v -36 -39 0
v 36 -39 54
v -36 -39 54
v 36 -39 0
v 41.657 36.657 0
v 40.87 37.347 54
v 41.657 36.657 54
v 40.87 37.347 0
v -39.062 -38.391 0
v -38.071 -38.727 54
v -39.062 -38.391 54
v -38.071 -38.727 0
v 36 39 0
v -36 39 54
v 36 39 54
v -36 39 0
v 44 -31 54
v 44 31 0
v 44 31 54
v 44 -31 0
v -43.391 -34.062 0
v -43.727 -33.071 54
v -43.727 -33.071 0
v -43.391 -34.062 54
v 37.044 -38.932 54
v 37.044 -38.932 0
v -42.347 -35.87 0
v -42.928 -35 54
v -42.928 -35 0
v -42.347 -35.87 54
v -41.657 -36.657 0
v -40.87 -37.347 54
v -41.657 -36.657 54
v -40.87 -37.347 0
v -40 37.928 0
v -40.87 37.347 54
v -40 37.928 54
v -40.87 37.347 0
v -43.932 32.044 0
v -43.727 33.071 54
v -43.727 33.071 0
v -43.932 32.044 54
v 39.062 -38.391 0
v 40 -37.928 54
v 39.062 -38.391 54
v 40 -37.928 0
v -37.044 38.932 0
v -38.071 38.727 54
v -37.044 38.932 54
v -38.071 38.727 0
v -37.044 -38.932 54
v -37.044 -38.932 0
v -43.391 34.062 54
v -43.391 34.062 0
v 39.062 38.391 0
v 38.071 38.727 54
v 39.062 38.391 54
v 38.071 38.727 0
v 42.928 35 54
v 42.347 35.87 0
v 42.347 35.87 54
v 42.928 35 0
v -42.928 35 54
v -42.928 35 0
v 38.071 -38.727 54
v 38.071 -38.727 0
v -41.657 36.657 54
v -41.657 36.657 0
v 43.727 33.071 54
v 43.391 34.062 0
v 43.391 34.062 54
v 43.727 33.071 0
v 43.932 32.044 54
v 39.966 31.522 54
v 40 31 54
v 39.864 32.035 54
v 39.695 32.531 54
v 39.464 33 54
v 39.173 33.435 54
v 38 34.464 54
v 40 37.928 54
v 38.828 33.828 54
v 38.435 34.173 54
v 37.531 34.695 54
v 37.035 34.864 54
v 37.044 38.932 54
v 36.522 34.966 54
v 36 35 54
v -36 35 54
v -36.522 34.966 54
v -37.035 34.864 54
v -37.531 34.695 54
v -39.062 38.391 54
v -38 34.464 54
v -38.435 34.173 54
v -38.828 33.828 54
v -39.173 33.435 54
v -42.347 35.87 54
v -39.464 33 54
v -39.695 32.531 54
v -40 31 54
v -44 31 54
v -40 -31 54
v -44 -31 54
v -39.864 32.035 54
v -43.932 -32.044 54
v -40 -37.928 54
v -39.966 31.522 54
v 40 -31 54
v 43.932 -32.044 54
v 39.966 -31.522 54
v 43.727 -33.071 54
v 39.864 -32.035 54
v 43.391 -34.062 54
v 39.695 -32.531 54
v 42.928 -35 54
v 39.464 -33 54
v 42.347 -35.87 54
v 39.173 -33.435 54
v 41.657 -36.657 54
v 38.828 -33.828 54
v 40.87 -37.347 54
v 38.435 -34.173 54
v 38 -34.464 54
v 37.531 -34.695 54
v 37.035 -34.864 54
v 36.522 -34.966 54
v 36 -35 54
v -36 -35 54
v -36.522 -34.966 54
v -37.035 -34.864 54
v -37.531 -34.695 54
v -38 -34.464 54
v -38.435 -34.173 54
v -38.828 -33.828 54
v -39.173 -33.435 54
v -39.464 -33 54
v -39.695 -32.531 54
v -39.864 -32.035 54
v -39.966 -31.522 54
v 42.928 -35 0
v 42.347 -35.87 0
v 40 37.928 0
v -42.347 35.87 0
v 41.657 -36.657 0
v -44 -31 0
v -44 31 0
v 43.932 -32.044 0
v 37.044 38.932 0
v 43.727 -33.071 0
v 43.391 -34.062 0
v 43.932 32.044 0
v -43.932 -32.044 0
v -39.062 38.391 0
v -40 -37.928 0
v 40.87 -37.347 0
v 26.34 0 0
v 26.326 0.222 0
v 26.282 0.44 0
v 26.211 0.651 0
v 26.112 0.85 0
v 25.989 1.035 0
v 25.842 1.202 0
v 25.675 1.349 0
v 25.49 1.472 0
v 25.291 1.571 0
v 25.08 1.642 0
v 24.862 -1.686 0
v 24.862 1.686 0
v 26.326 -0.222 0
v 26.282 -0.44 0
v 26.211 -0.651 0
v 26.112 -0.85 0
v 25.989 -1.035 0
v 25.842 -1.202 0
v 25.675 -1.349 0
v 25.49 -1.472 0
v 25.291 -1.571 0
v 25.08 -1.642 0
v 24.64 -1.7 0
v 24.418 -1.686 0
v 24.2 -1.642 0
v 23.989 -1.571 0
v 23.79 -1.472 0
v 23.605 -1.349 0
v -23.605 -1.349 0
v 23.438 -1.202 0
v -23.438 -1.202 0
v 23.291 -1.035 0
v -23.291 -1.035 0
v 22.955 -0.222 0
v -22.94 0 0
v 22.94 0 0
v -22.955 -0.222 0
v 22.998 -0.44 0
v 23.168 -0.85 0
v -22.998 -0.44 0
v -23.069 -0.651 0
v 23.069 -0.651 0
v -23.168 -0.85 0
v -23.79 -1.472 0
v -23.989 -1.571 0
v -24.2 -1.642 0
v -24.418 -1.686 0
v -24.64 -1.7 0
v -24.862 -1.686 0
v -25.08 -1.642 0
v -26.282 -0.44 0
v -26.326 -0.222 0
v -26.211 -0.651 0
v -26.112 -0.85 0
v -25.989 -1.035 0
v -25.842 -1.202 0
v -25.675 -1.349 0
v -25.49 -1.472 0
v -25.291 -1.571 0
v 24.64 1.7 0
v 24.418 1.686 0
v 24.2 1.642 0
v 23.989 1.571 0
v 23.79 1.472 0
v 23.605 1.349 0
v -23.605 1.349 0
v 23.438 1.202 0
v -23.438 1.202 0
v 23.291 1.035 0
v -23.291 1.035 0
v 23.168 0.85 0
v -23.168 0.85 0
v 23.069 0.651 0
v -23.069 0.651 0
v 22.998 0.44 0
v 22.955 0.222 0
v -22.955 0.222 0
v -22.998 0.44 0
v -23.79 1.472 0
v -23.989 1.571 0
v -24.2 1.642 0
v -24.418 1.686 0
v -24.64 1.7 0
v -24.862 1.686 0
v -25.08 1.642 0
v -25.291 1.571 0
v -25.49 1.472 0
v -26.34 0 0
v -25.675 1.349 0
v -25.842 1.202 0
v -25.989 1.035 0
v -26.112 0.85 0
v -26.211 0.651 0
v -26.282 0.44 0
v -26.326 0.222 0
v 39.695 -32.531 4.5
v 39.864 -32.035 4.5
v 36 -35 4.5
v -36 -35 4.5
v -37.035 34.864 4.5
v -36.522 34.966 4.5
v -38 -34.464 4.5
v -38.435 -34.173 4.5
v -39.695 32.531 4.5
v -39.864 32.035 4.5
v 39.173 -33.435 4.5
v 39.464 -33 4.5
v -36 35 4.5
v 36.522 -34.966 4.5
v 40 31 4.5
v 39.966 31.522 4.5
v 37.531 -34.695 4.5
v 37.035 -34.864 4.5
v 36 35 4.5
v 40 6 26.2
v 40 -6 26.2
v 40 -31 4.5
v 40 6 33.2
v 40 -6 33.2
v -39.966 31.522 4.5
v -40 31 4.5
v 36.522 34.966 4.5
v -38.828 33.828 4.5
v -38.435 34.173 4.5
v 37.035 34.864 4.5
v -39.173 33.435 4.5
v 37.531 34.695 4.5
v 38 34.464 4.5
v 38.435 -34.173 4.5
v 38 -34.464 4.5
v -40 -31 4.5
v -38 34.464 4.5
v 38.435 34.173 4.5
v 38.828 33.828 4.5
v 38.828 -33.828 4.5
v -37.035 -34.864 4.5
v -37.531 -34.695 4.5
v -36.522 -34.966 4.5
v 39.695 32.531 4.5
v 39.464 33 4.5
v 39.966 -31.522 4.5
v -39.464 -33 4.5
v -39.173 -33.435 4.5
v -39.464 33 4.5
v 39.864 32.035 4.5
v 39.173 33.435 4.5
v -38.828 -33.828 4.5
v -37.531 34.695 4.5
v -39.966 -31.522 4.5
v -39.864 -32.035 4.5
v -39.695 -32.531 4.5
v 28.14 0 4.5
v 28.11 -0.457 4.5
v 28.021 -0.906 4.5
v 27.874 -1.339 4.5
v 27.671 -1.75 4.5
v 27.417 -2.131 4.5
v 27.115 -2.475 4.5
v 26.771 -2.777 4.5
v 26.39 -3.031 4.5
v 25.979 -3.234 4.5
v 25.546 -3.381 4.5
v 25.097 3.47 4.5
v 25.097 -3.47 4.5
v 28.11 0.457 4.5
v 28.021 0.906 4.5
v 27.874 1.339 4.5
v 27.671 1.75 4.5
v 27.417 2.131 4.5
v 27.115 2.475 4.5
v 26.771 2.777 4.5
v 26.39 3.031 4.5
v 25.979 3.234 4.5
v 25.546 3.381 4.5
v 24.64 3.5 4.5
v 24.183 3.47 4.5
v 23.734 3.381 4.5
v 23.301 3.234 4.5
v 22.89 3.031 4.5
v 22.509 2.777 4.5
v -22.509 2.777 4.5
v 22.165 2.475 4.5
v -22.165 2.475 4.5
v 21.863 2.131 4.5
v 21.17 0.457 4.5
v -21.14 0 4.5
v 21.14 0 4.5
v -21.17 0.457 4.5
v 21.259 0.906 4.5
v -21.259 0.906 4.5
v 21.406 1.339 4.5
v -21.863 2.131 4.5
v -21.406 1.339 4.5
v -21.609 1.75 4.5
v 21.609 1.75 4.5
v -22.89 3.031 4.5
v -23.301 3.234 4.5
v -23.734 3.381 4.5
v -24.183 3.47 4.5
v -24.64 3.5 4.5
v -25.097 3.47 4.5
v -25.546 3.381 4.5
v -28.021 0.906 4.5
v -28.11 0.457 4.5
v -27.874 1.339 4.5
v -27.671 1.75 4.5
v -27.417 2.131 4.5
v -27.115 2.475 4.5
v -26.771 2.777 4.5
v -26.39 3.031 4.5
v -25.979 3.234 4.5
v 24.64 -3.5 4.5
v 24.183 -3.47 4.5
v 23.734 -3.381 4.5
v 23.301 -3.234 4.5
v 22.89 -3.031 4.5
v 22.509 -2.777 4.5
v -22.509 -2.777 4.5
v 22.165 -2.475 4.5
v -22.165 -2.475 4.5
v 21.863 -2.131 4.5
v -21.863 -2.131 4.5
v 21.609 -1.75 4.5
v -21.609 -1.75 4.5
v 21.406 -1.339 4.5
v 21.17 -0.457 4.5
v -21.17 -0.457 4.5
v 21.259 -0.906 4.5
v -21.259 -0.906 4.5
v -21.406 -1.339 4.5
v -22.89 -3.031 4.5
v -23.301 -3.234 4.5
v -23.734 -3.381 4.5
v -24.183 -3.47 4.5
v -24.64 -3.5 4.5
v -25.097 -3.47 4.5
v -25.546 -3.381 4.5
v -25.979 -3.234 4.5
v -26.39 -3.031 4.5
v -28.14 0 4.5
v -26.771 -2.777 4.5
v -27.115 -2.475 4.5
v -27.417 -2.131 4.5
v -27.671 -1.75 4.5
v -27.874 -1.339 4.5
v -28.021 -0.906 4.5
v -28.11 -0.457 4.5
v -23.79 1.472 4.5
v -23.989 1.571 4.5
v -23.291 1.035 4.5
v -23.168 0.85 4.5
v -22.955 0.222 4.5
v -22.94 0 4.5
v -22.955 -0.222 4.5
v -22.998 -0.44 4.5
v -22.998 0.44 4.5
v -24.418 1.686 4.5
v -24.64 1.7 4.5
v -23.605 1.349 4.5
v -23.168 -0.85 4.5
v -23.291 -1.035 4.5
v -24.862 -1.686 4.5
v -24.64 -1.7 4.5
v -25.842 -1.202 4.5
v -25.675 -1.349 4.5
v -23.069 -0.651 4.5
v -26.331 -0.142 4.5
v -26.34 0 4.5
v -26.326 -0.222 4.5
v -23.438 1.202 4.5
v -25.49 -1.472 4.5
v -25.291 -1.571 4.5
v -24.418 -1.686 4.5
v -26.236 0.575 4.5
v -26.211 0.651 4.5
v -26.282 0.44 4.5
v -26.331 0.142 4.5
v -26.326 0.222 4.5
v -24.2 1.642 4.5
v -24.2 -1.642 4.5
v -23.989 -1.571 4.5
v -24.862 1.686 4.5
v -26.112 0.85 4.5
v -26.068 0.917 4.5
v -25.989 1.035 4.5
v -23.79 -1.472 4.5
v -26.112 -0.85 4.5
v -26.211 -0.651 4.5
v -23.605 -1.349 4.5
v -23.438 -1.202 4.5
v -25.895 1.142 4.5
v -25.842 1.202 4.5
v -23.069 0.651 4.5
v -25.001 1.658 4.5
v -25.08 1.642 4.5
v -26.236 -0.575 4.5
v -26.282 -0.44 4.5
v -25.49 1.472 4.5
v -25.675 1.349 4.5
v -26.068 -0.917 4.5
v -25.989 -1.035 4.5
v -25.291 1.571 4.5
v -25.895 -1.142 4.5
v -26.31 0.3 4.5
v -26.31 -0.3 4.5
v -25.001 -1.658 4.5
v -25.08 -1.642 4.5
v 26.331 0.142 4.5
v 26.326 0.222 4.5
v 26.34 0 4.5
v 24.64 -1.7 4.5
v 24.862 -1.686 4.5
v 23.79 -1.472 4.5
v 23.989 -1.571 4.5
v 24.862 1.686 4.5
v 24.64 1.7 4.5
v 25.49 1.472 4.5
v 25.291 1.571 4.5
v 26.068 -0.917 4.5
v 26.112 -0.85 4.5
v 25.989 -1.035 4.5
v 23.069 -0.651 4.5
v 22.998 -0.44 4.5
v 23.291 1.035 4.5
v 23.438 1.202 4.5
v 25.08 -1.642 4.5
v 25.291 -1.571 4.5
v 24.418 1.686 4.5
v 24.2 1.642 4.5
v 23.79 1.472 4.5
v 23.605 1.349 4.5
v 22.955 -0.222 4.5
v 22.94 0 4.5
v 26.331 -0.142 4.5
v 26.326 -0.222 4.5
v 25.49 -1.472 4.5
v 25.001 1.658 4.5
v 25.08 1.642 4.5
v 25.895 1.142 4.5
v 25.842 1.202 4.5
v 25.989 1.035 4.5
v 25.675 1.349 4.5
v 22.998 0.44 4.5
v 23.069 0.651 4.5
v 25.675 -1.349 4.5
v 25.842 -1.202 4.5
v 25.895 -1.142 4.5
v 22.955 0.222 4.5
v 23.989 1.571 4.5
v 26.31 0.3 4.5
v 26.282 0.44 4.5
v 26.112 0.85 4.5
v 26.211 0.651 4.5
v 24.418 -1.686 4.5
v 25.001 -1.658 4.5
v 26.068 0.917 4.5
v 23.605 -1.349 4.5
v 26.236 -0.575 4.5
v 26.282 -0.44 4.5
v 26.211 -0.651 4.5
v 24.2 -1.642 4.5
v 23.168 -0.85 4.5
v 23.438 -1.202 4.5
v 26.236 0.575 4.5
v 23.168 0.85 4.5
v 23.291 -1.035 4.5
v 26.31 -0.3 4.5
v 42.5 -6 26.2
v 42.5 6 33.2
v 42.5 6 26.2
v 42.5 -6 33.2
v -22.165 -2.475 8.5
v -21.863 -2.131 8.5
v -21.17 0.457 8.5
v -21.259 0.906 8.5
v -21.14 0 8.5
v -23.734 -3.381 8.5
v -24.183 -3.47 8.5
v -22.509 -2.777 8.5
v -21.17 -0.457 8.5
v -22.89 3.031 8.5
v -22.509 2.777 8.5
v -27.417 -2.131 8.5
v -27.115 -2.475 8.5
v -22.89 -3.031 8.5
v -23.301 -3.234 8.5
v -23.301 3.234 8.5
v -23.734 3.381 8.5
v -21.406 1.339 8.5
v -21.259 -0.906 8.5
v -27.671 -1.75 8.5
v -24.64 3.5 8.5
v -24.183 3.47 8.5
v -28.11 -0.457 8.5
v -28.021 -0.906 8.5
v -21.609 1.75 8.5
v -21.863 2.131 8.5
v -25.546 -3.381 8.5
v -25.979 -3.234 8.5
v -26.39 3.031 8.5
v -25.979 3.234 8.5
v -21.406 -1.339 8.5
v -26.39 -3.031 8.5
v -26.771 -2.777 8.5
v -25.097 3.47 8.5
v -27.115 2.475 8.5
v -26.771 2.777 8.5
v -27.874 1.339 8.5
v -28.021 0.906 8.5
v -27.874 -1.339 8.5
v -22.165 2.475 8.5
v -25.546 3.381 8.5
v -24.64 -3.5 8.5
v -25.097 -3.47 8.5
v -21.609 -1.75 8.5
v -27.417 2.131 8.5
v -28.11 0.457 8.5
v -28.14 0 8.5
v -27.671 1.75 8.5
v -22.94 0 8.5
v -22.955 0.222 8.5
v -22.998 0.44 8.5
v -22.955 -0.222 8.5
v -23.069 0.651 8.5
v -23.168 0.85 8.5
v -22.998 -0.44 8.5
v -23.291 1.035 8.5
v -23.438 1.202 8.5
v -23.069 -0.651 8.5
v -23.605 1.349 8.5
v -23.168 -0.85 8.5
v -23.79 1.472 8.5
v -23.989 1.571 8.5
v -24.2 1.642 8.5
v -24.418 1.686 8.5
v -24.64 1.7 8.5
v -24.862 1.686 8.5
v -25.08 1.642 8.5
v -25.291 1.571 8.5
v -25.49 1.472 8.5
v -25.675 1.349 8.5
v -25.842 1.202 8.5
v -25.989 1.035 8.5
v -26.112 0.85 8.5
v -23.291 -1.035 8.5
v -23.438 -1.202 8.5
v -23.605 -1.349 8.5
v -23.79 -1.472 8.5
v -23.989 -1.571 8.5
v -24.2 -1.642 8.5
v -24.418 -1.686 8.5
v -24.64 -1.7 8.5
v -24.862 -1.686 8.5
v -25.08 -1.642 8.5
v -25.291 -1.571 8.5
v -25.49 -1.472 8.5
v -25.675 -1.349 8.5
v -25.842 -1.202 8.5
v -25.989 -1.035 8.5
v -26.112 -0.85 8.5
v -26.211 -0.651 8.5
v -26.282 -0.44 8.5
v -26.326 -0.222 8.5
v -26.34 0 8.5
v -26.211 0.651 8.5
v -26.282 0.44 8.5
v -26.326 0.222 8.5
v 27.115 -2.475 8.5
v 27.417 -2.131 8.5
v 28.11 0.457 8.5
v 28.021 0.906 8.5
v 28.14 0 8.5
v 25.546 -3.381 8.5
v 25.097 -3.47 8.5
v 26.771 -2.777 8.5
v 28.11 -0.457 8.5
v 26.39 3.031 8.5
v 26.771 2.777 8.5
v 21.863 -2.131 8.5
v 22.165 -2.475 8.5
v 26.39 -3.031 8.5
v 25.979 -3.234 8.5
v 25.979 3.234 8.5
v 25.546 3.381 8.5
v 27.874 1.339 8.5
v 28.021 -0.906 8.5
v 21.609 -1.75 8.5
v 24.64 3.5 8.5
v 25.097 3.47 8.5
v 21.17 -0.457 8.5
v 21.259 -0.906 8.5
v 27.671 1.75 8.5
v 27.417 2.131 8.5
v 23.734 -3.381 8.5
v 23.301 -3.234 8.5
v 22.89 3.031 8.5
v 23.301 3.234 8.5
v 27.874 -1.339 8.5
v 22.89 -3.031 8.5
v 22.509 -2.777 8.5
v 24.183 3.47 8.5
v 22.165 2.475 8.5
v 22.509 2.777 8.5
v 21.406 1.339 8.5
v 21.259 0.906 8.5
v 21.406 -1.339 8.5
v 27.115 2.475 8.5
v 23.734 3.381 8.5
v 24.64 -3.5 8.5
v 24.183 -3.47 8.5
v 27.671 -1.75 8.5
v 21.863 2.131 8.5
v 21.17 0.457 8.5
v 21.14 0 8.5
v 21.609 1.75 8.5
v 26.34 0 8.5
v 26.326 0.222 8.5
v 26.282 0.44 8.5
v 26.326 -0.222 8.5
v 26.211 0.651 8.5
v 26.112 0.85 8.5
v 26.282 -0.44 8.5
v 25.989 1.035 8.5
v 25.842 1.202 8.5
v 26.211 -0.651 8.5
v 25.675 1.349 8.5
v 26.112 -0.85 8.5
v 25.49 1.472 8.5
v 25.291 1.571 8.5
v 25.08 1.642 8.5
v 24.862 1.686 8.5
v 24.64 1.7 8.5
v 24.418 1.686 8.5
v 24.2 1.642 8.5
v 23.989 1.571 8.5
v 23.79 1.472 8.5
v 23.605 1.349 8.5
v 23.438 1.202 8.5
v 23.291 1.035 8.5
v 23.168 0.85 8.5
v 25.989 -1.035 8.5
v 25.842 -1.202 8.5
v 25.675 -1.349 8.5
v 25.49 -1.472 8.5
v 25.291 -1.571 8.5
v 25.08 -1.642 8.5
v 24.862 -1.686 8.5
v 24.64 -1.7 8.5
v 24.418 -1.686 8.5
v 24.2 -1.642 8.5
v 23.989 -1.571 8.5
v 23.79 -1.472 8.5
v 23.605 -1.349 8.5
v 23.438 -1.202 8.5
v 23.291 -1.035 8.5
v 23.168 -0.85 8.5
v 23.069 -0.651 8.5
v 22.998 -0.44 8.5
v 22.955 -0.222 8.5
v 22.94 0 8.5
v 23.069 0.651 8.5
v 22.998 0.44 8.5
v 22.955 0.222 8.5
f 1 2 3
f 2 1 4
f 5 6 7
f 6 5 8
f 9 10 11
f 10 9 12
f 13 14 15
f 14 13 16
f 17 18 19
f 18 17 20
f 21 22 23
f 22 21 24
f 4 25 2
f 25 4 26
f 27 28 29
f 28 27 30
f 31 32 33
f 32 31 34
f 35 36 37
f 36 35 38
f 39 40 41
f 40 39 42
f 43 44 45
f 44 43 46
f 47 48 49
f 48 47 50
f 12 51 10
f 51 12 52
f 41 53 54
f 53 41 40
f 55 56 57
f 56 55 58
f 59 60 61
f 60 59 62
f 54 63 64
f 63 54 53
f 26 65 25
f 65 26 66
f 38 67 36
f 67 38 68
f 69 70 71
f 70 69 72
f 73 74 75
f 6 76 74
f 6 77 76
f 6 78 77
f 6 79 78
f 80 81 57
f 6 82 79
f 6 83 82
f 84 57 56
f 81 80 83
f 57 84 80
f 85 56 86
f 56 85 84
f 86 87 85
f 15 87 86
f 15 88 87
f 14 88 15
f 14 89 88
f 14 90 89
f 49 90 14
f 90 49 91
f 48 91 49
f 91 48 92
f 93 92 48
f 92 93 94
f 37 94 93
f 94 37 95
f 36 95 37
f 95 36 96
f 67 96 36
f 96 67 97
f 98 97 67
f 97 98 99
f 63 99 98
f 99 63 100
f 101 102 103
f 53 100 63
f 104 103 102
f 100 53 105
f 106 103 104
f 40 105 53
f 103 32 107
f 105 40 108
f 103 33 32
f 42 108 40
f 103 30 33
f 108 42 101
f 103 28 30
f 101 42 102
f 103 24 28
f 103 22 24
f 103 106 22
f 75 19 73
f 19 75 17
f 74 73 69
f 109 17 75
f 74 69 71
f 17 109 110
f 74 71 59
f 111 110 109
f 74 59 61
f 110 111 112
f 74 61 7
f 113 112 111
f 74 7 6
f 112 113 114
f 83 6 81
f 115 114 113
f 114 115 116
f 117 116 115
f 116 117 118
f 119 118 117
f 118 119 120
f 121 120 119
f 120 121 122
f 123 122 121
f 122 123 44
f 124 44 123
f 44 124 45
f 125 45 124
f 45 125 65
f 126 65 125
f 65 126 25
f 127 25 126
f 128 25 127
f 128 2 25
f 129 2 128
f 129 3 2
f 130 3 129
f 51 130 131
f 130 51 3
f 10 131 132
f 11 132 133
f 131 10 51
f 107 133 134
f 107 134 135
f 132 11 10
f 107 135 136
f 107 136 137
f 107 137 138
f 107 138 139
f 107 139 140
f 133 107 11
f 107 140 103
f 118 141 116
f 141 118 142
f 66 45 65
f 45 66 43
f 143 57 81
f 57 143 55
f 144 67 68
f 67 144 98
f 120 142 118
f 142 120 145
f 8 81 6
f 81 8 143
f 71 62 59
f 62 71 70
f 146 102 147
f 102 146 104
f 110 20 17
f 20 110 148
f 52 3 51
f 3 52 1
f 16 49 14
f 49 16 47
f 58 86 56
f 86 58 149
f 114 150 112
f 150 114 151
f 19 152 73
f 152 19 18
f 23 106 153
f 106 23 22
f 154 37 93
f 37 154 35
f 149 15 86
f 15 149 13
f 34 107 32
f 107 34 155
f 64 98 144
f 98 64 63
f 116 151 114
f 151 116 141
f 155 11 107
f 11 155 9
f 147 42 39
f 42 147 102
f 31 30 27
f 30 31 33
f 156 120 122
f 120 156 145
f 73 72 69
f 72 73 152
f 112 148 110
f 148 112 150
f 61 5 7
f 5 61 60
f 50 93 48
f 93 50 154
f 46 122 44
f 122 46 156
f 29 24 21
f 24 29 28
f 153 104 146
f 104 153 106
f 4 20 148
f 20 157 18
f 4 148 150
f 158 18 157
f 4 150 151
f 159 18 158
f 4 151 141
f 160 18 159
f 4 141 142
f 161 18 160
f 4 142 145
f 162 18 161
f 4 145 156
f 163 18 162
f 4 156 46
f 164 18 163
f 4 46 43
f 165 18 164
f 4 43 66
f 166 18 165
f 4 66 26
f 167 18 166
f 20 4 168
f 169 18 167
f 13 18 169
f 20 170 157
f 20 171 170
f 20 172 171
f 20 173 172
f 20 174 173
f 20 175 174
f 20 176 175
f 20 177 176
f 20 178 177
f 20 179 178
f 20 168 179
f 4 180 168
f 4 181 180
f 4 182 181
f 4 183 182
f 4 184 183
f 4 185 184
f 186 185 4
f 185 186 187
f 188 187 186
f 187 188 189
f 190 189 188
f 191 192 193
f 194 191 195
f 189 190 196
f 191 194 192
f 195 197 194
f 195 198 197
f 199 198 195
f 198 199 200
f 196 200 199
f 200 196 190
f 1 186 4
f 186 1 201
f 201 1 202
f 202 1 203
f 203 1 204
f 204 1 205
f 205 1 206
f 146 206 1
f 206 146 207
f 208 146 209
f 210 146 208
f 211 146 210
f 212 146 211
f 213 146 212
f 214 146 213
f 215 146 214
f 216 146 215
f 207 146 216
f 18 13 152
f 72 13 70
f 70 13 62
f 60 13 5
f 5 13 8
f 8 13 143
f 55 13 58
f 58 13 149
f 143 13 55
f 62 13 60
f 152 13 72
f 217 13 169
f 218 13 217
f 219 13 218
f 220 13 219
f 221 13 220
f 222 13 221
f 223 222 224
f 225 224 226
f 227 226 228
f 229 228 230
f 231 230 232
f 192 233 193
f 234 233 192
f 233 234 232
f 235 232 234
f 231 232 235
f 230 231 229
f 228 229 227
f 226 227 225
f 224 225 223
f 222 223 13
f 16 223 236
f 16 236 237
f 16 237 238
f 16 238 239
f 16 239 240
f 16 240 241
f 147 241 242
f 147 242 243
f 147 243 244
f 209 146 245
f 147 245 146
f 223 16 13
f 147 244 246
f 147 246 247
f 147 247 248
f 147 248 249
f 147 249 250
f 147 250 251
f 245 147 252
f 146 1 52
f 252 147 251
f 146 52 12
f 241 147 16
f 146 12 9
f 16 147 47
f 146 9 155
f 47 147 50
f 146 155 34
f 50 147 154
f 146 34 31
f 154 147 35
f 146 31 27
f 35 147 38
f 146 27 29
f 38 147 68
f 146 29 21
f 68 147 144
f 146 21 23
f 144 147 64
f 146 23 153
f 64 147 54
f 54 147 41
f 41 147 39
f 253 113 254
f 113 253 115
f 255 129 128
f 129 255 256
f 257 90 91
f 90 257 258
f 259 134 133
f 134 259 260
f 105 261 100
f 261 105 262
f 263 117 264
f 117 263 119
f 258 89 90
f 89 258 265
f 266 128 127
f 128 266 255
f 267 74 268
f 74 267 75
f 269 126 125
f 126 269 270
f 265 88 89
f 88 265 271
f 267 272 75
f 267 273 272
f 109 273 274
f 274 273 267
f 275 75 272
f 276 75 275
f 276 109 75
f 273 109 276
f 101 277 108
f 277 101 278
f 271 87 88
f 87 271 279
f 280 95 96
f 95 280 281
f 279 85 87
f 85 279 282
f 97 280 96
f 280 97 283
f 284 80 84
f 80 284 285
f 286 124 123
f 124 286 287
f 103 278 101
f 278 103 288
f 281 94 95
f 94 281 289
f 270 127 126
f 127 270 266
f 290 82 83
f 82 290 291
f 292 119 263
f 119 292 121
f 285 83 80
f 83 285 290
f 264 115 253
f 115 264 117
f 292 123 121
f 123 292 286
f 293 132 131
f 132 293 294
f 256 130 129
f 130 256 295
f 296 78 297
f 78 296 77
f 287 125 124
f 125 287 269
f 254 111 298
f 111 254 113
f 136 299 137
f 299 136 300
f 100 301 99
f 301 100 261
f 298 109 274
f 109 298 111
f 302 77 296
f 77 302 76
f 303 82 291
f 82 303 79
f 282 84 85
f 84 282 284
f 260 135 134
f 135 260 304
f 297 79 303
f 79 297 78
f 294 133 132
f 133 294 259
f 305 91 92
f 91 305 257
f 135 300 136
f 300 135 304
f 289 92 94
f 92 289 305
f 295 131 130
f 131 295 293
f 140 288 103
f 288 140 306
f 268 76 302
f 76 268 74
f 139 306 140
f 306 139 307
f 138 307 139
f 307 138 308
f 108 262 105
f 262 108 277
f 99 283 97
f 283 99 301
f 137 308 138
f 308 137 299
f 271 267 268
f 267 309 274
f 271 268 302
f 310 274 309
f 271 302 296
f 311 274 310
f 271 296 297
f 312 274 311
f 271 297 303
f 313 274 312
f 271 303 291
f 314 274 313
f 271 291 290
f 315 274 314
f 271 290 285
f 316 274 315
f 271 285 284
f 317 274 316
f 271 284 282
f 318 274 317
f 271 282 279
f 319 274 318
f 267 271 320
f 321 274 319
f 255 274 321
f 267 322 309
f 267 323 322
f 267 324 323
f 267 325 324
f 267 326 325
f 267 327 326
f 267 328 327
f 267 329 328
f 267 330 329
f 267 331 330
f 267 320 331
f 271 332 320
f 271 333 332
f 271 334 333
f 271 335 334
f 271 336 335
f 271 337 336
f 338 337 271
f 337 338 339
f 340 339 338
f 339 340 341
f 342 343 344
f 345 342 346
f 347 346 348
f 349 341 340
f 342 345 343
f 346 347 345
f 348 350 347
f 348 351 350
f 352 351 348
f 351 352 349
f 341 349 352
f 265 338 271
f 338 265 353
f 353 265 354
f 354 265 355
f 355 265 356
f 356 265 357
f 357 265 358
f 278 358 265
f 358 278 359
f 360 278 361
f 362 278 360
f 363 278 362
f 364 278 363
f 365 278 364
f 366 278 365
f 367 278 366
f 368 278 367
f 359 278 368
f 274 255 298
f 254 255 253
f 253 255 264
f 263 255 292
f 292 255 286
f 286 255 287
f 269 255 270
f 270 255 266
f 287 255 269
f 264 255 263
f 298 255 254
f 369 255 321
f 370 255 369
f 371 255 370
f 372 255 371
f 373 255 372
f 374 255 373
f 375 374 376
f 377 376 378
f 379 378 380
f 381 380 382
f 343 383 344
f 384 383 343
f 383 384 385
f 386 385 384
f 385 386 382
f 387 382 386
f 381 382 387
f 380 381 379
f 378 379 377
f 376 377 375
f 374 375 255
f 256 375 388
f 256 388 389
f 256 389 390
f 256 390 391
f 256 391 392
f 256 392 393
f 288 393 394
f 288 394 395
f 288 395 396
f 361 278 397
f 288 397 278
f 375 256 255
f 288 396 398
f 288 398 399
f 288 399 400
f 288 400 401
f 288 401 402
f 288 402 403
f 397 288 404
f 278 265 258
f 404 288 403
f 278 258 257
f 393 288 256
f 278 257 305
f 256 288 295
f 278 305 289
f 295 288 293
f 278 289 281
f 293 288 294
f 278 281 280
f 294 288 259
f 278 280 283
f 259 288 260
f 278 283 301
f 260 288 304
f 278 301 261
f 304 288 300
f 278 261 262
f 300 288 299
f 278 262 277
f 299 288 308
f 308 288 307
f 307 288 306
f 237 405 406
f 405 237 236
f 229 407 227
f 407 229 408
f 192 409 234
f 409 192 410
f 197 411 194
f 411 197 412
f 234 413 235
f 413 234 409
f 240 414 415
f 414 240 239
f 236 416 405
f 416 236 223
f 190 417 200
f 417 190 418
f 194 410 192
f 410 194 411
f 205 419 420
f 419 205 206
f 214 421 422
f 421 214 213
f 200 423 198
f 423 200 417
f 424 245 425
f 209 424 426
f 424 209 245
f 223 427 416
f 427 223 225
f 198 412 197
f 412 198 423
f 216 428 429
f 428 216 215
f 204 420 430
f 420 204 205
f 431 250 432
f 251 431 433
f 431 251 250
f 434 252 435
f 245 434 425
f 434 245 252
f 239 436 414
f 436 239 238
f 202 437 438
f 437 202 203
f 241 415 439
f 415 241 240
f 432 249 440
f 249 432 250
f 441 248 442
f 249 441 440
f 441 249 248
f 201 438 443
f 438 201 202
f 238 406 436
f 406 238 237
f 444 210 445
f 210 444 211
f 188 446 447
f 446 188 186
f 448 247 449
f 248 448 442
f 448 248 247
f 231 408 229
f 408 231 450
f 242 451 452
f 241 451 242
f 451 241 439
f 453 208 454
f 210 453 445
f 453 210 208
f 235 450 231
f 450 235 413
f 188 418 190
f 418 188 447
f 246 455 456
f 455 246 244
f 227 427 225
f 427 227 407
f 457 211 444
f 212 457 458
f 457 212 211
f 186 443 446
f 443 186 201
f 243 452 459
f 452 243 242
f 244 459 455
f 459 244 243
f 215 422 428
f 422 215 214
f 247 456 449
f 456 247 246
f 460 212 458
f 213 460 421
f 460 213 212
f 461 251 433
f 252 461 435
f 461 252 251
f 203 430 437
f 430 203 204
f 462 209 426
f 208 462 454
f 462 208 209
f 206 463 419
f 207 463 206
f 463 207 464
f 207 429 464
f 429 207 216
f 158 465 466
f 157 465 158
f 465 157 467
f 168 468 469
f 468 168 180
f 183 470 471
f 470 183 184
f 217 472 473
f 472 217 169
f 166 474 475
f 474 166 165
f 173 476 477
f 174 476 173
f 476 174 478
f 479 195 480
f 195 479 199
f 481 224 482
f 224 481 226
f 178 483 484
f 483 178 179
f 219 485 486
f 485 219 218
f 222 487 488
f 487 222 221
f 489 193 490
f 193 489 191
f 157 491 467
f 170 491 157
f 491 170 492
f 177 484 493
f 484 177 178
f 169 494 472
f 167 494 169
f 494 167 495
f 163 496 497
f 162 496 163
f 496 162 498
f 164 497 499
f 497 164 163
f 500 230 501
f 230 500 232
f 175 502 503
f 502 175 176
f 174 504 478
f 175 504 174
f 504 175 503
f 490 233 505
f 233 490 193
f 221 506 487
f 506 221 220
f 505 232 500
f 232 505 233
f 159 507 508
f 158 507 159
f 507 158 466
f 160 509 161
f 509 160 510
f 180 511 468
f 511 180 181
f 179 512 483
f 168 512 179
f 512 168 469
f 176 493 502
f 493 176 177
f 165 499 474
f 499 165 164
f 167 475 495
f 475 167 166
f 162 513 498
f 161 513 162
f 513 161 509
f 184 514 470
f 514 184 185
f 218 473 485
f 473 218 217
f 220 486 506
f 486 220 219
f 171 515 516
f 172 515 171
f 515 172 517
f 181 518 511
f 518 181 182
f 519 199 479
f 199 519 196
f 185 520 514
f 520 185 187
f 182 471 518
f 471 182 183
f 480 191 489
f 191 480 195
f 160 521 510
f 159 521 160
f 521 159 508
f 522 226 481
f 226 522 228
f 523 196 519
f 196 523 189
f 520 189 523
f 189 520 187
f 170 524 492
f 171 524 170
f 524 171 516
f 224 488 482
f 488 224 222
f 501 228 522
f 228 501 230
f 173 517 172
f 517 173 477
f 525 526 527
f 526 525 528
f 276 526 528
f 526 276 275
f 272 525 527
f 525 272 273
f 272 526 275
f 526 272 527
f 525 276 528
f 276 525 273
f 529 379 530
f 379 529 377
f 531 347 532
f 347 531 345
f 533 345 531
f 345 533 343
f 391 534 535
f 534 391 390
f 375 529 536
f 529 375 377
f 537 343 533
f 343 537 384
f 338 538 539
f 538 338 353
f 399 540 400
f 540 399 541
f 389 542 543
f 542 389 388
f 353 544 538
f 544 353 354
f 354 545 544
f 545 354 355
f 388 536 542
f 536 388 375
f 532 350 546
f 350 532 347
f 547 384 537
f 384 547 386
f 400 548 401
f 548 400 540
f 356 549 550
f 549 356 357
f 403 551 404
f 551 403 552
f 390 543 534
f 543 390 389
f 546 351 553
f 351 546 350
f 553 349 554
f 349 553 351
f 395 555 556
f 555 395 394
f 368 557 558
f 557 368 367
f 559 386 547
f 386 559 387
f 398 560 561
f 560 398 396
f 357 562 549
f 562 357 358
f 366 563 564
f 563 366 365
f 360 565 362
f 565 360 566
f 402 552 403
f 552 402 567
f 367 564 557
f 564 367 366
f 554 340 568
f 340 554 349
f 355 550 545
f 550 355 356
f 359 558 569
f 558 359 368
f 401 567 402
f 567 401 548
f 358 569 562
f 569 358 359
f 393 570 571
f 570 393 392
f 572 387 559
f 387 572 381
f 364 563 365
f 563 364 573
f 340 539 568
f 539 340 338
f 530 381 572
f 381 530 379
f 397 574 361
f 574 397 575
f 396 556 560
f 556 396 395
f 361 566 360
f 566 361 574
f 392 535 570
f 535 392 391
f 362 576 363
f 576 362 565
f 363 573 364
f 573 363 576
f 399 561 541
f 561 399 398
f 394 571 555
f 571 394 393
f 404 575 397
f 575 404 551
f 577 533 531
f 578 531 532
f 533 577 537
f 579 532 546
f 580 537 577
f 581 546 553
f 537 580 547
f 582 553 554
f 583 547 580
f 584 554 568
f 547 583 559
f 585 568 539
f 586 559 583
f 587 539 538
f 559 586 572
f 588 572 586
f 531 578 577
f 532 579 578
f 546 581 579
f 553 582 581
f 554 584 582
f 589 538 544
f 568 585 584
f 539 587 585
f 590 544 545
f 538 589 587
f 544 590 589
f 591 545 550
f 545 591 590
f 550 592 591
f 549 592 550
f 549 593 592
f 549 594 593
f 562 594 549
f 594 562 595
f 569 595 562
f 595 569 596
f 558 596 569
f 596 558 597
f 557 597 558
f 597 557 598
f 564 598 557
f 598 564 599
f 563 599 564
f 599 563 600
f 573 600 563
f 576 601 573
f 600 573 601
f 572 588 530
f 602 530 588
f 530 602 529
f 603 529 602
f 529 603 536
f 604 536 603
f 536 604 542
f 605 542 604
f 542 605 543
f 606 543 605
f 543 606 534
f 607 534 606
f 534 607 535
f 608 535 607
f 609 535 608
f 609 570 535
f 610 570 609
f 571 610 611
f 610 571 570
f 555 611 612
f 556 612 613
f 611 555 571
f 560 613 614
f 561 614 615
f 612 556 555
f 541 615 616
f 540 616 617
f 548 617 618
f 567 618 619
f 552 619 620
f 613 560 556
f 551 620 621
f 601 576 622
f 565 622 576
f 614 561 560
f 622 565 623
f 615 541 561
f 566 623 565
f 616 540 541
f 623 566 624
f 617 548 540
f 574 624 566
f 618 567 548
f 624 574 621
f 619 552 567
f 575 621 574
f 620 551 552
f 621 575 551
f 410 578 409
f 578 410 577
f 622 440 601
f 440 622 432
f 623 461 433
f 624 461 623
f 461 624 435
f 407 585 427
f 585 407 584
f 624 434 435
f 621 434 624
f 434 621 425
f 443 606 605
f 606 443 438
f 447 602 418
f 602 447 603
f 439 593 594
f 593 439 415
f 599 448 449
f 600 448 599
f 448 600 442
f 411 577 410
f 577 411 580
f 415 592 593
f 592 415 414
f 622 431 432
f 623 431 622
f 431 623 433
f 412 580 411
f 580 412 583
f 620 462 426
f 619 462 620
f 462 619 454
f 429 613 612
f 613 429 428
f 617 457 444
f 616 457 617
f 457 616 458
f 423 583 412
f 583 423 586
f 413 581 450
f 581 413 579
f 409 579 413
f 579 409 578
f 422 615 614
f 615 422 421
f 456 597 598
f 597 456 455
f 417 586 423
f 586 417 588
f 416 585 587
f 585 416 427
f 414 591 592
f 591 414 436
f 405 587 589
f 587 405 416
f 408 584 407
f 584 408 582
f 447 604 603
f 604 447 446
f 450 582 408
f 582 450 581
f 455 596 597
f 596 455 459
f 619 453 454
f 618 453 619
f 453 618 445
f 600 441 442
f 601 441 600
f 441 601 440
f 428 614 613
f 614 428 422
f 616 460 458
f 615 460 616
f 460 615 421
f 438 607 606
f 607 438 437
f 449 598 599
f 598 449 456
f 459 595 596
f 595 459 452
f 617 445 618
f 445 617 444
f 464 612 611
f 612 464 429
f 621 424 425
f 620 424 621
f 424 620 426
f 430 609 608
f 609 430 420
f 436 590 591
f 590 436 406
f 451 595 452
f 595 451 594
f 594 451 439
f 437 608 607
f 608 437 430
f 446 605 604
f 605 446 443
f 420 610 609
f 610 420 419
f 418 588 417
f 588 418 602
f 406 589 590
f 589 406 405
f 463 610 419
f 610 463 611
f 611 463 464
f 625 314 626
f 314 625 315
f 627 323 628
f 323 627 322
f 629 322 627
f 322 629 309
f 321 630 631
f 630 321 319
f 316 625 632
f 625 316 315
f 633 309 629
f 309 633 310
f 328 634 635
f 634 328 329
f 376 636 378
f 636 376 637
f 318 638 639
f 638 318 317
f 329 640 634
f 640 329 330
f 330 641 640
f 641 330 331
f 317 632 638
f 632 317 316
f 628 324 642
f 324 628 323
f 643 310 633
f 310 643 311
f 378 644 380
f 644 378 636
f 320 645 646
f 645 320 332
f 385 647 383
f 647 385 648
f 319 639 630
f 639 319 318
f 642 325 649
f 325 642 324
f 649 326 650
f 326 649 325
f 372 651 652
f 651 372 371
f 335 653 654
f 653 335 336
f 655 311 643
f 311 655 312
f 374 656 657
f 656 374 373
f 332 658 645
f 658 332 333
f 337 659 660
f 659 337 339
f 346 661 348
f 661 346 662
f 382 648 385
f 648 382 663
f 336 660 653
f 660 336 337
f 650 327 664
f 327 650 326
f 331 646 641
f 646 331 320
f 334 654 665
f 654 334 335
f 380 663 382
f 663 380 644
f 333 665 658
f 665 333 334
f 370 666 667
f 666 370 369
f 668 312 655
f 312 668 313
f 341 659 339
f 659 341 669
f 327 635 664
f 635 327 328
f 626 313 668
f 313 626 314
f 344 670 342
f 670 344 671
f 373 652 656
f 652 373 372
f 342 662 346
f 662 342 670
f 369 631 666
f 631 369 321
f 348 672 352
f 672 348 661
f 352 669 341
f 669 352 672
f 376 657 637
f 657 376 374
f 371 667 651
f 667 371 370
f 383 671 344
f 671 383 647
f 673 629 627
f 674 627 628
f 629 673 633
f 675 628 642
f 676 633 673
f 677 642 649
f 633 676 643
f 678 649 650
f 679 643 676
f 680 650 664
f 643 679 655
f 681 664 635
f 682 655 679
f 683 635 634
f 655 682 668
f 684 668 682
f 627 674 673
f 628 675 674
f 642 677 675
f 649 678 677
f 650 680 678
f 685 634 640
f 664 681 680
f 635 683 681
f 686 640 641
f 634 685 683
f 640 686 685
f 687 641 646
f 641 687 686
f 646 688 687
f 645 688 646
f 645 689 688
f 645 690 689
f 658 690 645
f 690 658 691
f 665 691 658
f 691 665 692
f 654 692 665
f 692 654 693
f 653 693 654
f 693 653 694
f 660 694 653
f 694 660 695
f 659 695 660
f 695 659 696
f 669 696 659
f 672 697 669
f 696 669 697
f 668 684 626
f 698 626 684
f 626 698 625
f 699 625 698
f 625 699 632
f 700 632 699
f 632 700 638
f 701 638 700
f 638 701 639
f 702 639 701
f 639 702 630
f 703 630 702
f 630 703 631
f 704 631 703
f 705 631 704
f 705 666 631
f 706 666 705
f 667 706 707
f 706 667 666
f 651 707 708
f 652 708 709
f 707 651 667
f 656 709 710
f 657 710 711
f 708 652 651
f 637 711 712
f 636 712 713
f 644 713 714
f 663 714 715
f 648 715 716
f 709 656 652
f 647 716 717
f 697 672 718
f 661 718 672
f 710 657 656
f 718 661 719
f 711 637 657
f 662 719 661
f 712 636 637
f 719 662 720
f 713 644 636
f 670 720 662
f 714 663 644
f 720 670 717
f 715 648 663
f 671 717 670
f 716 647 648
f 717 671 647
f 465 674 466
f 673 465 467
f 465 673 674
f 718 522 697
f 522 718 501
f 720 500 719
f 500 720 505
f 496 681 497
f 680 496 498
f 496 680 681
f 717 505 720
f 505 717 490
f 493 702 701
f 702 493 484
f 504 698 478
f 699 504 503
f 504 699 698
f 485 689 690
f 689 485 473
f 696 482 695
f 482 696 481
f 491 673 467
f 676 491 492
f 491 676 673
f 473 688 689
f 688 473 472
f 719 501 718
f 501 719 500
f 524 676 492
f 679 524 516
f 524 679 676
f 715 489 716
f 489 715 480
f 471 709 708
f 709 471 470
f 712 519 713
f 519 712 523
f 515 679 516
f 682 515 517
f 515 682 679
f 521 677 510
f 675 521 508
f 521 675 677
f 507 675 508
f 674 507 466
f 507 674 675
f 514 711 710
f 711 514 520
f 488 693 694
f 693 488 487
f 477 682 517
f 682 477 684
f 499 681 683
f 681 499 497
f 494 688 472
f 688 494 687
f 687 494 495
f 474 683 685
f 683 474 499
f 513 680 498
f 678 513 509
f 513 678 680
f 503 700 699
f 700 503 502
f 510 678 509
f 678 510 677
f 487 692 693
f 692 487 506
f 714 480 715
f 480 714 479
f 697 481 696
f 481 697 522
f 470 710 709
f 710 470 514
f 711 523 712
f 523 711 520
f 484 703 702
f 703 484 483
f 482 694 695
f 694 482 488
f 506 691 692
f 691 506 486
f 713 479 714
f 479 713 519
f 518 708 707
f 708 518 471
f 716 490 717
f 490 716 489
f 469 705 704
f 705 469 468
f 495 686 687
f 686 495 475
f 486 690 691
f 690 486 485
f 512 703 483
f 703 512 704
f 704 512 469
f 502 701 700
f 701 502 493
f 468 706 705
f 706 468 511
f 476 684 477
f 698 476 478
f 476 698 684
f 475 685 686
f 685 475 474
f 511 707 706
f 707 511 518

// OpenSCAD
// ============================================================================
// Get Me An Alt — Parametric OpenSCAD Module
// Part: PRT-02 — Right 2020 Rail Idler Block with M5 Belt Tensioner (idler-end-block)
// Function: Anchors right rail end and tensions the linear GT2 timing belt.
// Target Bounding Box (mm): [88, 78, 54]
// Print Material: PETG | Min Wall: >= 1.6mm | Tolerance: 0.2mm
// ============================================================================
$fn = 48;
part_width = 88;
part_depth = 78;
part_height = 54;
wall_thickness = 4;
floor_thickness = 4.5;
corner_radius = 8;
tolerance = 0.2;
m3_clearance_d = 3.4; // M3 screw clearance hole (3.0mm + 2*0.2mm)

module rounded_rect_prism(w, d, h, r) {
  cr = max(0.5, min(r, min(w, d) / 2 - 0.1));
  linear_extrude(height = h)
    offset(r = cr)
      offset(r = -cr)
        square([w, d], center = true);
}

module part_idler_end_block() {
  union() {
    difference() {
      rounded_rect_prism(part_width, part_depth, part_height, corner_radius);
      translate([0, 0, floor_thickness])
        rounded_rect_prism(
          part_width - 2 * wall_thickness,
          part_depth - 2 * wall_thickness,
          part_height,
          max(1.0, corner_radius - wall_thickness)
        );
    translate([-part_width * 0.28, 0, -1]) cylinder(h = floor_thickness + 2, d = m3_clearance_d);
    translate([part_width * 0.28, 0, -1]) cylinder(h = floor_thickness + 2, d = m3_clearance_d);
      // Cable / USB-C pass-through slot on side wall
      translate([part_width / 2 - wall_thickness - 1, 0, part_height * 0.55])
        cube([wall_thickness + 3, 12, 7], center = true);
    }
    // Internal M3 PCB standoff bosses
    for (sx = [-part_width * 0.28, part_width * 0.28]) {
      translate([sx, 0, floor_thickness])
        difference() {
          cylinder(h = 4.0, d = 7.0);
          translate([0, 0, -0.5]) cylinder(h = 5.0, d = m3_clearance_d);
        }
    }
  }
}

part_idler_end_block();
